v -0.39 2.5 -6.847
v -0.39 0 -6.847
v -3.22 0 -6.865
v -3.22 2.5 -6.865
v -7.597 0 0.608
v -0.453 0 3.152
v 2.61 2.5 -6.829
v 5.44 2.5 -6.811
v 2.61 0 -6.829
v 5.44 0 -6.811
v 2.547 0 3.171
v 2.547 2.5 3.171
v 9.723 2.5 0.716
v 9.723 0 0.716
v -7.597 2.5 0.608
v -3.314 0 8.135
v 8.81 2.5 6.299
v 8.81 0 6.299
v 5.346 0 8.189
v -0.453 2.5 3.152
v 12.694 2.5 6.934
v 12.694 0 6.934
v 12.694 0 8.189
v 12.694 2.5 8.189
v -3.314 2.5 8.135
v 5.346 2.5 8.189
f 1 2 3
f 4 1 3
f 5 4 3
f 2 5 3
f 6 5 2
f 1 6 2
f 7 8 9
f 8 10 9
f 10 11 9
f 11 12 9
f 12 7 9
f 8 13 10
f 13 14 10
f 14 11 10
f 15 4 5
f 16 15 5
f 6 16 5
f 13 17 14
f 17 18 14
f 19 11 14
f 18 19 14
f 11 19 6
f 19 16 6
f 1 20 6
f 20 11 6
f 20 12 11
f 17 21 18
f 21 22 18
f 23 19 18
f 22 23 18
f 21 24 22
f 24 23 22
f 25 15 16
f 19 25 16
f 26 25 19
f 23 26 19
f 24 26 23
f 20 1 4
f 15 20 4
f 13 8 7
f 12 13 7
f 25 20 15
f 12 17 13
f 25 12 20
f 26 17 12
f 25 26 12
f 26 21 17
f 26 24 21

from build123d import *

# Parameters (mm, degrees)
BOSS_EXTRUDE1_DEPTH = 2.5
SKETCH2_W           = 3
SKETCH2_H           = 2.5
CUT_EXTRUDE1_DEPTH  = 10


with BuildPart() as part:
    # Sketch1 → Boss-Extrude1 (new body)
    with BuildSketch(Plane(origin=(0, 0, 0), x_dir=(1, 0, 0), z_dir=(0, 1, 0))):
        Polygon((12.694105225, -6.934131302), (12.694105225, -8.188855223), (5.34603962, -8.188855223), (-3.3140449, -8.134669239), (-7.59716072, -0.607723054), (-3.220192022, 6.865037146), (5.439892498, 6.810851162), (9.723008318, -0.716095023), (8.810324475, -6.299245302), align=None)
    extrude(amount=BOSS_EXTRUDE1_DEPTH)

    # Sketch2 → Cut-Extrude1 (cut)
    with BuildSketch(Plane(origin=(0.04282666, 0, -6.8446205), x_dir=(-0.999980426, 0, -0.006256859), z_dir=(0.006256859, 0, -0.999980426))):
        with Locations((-1.067171483, 1.25)):
            Rectangle(SKETCH2_W, SKETCH2_H)
    extrude(amount=-CUT_EXTRUDE1_DEPTH, mode=Mode.SUBTRACT)


solid = part.part
